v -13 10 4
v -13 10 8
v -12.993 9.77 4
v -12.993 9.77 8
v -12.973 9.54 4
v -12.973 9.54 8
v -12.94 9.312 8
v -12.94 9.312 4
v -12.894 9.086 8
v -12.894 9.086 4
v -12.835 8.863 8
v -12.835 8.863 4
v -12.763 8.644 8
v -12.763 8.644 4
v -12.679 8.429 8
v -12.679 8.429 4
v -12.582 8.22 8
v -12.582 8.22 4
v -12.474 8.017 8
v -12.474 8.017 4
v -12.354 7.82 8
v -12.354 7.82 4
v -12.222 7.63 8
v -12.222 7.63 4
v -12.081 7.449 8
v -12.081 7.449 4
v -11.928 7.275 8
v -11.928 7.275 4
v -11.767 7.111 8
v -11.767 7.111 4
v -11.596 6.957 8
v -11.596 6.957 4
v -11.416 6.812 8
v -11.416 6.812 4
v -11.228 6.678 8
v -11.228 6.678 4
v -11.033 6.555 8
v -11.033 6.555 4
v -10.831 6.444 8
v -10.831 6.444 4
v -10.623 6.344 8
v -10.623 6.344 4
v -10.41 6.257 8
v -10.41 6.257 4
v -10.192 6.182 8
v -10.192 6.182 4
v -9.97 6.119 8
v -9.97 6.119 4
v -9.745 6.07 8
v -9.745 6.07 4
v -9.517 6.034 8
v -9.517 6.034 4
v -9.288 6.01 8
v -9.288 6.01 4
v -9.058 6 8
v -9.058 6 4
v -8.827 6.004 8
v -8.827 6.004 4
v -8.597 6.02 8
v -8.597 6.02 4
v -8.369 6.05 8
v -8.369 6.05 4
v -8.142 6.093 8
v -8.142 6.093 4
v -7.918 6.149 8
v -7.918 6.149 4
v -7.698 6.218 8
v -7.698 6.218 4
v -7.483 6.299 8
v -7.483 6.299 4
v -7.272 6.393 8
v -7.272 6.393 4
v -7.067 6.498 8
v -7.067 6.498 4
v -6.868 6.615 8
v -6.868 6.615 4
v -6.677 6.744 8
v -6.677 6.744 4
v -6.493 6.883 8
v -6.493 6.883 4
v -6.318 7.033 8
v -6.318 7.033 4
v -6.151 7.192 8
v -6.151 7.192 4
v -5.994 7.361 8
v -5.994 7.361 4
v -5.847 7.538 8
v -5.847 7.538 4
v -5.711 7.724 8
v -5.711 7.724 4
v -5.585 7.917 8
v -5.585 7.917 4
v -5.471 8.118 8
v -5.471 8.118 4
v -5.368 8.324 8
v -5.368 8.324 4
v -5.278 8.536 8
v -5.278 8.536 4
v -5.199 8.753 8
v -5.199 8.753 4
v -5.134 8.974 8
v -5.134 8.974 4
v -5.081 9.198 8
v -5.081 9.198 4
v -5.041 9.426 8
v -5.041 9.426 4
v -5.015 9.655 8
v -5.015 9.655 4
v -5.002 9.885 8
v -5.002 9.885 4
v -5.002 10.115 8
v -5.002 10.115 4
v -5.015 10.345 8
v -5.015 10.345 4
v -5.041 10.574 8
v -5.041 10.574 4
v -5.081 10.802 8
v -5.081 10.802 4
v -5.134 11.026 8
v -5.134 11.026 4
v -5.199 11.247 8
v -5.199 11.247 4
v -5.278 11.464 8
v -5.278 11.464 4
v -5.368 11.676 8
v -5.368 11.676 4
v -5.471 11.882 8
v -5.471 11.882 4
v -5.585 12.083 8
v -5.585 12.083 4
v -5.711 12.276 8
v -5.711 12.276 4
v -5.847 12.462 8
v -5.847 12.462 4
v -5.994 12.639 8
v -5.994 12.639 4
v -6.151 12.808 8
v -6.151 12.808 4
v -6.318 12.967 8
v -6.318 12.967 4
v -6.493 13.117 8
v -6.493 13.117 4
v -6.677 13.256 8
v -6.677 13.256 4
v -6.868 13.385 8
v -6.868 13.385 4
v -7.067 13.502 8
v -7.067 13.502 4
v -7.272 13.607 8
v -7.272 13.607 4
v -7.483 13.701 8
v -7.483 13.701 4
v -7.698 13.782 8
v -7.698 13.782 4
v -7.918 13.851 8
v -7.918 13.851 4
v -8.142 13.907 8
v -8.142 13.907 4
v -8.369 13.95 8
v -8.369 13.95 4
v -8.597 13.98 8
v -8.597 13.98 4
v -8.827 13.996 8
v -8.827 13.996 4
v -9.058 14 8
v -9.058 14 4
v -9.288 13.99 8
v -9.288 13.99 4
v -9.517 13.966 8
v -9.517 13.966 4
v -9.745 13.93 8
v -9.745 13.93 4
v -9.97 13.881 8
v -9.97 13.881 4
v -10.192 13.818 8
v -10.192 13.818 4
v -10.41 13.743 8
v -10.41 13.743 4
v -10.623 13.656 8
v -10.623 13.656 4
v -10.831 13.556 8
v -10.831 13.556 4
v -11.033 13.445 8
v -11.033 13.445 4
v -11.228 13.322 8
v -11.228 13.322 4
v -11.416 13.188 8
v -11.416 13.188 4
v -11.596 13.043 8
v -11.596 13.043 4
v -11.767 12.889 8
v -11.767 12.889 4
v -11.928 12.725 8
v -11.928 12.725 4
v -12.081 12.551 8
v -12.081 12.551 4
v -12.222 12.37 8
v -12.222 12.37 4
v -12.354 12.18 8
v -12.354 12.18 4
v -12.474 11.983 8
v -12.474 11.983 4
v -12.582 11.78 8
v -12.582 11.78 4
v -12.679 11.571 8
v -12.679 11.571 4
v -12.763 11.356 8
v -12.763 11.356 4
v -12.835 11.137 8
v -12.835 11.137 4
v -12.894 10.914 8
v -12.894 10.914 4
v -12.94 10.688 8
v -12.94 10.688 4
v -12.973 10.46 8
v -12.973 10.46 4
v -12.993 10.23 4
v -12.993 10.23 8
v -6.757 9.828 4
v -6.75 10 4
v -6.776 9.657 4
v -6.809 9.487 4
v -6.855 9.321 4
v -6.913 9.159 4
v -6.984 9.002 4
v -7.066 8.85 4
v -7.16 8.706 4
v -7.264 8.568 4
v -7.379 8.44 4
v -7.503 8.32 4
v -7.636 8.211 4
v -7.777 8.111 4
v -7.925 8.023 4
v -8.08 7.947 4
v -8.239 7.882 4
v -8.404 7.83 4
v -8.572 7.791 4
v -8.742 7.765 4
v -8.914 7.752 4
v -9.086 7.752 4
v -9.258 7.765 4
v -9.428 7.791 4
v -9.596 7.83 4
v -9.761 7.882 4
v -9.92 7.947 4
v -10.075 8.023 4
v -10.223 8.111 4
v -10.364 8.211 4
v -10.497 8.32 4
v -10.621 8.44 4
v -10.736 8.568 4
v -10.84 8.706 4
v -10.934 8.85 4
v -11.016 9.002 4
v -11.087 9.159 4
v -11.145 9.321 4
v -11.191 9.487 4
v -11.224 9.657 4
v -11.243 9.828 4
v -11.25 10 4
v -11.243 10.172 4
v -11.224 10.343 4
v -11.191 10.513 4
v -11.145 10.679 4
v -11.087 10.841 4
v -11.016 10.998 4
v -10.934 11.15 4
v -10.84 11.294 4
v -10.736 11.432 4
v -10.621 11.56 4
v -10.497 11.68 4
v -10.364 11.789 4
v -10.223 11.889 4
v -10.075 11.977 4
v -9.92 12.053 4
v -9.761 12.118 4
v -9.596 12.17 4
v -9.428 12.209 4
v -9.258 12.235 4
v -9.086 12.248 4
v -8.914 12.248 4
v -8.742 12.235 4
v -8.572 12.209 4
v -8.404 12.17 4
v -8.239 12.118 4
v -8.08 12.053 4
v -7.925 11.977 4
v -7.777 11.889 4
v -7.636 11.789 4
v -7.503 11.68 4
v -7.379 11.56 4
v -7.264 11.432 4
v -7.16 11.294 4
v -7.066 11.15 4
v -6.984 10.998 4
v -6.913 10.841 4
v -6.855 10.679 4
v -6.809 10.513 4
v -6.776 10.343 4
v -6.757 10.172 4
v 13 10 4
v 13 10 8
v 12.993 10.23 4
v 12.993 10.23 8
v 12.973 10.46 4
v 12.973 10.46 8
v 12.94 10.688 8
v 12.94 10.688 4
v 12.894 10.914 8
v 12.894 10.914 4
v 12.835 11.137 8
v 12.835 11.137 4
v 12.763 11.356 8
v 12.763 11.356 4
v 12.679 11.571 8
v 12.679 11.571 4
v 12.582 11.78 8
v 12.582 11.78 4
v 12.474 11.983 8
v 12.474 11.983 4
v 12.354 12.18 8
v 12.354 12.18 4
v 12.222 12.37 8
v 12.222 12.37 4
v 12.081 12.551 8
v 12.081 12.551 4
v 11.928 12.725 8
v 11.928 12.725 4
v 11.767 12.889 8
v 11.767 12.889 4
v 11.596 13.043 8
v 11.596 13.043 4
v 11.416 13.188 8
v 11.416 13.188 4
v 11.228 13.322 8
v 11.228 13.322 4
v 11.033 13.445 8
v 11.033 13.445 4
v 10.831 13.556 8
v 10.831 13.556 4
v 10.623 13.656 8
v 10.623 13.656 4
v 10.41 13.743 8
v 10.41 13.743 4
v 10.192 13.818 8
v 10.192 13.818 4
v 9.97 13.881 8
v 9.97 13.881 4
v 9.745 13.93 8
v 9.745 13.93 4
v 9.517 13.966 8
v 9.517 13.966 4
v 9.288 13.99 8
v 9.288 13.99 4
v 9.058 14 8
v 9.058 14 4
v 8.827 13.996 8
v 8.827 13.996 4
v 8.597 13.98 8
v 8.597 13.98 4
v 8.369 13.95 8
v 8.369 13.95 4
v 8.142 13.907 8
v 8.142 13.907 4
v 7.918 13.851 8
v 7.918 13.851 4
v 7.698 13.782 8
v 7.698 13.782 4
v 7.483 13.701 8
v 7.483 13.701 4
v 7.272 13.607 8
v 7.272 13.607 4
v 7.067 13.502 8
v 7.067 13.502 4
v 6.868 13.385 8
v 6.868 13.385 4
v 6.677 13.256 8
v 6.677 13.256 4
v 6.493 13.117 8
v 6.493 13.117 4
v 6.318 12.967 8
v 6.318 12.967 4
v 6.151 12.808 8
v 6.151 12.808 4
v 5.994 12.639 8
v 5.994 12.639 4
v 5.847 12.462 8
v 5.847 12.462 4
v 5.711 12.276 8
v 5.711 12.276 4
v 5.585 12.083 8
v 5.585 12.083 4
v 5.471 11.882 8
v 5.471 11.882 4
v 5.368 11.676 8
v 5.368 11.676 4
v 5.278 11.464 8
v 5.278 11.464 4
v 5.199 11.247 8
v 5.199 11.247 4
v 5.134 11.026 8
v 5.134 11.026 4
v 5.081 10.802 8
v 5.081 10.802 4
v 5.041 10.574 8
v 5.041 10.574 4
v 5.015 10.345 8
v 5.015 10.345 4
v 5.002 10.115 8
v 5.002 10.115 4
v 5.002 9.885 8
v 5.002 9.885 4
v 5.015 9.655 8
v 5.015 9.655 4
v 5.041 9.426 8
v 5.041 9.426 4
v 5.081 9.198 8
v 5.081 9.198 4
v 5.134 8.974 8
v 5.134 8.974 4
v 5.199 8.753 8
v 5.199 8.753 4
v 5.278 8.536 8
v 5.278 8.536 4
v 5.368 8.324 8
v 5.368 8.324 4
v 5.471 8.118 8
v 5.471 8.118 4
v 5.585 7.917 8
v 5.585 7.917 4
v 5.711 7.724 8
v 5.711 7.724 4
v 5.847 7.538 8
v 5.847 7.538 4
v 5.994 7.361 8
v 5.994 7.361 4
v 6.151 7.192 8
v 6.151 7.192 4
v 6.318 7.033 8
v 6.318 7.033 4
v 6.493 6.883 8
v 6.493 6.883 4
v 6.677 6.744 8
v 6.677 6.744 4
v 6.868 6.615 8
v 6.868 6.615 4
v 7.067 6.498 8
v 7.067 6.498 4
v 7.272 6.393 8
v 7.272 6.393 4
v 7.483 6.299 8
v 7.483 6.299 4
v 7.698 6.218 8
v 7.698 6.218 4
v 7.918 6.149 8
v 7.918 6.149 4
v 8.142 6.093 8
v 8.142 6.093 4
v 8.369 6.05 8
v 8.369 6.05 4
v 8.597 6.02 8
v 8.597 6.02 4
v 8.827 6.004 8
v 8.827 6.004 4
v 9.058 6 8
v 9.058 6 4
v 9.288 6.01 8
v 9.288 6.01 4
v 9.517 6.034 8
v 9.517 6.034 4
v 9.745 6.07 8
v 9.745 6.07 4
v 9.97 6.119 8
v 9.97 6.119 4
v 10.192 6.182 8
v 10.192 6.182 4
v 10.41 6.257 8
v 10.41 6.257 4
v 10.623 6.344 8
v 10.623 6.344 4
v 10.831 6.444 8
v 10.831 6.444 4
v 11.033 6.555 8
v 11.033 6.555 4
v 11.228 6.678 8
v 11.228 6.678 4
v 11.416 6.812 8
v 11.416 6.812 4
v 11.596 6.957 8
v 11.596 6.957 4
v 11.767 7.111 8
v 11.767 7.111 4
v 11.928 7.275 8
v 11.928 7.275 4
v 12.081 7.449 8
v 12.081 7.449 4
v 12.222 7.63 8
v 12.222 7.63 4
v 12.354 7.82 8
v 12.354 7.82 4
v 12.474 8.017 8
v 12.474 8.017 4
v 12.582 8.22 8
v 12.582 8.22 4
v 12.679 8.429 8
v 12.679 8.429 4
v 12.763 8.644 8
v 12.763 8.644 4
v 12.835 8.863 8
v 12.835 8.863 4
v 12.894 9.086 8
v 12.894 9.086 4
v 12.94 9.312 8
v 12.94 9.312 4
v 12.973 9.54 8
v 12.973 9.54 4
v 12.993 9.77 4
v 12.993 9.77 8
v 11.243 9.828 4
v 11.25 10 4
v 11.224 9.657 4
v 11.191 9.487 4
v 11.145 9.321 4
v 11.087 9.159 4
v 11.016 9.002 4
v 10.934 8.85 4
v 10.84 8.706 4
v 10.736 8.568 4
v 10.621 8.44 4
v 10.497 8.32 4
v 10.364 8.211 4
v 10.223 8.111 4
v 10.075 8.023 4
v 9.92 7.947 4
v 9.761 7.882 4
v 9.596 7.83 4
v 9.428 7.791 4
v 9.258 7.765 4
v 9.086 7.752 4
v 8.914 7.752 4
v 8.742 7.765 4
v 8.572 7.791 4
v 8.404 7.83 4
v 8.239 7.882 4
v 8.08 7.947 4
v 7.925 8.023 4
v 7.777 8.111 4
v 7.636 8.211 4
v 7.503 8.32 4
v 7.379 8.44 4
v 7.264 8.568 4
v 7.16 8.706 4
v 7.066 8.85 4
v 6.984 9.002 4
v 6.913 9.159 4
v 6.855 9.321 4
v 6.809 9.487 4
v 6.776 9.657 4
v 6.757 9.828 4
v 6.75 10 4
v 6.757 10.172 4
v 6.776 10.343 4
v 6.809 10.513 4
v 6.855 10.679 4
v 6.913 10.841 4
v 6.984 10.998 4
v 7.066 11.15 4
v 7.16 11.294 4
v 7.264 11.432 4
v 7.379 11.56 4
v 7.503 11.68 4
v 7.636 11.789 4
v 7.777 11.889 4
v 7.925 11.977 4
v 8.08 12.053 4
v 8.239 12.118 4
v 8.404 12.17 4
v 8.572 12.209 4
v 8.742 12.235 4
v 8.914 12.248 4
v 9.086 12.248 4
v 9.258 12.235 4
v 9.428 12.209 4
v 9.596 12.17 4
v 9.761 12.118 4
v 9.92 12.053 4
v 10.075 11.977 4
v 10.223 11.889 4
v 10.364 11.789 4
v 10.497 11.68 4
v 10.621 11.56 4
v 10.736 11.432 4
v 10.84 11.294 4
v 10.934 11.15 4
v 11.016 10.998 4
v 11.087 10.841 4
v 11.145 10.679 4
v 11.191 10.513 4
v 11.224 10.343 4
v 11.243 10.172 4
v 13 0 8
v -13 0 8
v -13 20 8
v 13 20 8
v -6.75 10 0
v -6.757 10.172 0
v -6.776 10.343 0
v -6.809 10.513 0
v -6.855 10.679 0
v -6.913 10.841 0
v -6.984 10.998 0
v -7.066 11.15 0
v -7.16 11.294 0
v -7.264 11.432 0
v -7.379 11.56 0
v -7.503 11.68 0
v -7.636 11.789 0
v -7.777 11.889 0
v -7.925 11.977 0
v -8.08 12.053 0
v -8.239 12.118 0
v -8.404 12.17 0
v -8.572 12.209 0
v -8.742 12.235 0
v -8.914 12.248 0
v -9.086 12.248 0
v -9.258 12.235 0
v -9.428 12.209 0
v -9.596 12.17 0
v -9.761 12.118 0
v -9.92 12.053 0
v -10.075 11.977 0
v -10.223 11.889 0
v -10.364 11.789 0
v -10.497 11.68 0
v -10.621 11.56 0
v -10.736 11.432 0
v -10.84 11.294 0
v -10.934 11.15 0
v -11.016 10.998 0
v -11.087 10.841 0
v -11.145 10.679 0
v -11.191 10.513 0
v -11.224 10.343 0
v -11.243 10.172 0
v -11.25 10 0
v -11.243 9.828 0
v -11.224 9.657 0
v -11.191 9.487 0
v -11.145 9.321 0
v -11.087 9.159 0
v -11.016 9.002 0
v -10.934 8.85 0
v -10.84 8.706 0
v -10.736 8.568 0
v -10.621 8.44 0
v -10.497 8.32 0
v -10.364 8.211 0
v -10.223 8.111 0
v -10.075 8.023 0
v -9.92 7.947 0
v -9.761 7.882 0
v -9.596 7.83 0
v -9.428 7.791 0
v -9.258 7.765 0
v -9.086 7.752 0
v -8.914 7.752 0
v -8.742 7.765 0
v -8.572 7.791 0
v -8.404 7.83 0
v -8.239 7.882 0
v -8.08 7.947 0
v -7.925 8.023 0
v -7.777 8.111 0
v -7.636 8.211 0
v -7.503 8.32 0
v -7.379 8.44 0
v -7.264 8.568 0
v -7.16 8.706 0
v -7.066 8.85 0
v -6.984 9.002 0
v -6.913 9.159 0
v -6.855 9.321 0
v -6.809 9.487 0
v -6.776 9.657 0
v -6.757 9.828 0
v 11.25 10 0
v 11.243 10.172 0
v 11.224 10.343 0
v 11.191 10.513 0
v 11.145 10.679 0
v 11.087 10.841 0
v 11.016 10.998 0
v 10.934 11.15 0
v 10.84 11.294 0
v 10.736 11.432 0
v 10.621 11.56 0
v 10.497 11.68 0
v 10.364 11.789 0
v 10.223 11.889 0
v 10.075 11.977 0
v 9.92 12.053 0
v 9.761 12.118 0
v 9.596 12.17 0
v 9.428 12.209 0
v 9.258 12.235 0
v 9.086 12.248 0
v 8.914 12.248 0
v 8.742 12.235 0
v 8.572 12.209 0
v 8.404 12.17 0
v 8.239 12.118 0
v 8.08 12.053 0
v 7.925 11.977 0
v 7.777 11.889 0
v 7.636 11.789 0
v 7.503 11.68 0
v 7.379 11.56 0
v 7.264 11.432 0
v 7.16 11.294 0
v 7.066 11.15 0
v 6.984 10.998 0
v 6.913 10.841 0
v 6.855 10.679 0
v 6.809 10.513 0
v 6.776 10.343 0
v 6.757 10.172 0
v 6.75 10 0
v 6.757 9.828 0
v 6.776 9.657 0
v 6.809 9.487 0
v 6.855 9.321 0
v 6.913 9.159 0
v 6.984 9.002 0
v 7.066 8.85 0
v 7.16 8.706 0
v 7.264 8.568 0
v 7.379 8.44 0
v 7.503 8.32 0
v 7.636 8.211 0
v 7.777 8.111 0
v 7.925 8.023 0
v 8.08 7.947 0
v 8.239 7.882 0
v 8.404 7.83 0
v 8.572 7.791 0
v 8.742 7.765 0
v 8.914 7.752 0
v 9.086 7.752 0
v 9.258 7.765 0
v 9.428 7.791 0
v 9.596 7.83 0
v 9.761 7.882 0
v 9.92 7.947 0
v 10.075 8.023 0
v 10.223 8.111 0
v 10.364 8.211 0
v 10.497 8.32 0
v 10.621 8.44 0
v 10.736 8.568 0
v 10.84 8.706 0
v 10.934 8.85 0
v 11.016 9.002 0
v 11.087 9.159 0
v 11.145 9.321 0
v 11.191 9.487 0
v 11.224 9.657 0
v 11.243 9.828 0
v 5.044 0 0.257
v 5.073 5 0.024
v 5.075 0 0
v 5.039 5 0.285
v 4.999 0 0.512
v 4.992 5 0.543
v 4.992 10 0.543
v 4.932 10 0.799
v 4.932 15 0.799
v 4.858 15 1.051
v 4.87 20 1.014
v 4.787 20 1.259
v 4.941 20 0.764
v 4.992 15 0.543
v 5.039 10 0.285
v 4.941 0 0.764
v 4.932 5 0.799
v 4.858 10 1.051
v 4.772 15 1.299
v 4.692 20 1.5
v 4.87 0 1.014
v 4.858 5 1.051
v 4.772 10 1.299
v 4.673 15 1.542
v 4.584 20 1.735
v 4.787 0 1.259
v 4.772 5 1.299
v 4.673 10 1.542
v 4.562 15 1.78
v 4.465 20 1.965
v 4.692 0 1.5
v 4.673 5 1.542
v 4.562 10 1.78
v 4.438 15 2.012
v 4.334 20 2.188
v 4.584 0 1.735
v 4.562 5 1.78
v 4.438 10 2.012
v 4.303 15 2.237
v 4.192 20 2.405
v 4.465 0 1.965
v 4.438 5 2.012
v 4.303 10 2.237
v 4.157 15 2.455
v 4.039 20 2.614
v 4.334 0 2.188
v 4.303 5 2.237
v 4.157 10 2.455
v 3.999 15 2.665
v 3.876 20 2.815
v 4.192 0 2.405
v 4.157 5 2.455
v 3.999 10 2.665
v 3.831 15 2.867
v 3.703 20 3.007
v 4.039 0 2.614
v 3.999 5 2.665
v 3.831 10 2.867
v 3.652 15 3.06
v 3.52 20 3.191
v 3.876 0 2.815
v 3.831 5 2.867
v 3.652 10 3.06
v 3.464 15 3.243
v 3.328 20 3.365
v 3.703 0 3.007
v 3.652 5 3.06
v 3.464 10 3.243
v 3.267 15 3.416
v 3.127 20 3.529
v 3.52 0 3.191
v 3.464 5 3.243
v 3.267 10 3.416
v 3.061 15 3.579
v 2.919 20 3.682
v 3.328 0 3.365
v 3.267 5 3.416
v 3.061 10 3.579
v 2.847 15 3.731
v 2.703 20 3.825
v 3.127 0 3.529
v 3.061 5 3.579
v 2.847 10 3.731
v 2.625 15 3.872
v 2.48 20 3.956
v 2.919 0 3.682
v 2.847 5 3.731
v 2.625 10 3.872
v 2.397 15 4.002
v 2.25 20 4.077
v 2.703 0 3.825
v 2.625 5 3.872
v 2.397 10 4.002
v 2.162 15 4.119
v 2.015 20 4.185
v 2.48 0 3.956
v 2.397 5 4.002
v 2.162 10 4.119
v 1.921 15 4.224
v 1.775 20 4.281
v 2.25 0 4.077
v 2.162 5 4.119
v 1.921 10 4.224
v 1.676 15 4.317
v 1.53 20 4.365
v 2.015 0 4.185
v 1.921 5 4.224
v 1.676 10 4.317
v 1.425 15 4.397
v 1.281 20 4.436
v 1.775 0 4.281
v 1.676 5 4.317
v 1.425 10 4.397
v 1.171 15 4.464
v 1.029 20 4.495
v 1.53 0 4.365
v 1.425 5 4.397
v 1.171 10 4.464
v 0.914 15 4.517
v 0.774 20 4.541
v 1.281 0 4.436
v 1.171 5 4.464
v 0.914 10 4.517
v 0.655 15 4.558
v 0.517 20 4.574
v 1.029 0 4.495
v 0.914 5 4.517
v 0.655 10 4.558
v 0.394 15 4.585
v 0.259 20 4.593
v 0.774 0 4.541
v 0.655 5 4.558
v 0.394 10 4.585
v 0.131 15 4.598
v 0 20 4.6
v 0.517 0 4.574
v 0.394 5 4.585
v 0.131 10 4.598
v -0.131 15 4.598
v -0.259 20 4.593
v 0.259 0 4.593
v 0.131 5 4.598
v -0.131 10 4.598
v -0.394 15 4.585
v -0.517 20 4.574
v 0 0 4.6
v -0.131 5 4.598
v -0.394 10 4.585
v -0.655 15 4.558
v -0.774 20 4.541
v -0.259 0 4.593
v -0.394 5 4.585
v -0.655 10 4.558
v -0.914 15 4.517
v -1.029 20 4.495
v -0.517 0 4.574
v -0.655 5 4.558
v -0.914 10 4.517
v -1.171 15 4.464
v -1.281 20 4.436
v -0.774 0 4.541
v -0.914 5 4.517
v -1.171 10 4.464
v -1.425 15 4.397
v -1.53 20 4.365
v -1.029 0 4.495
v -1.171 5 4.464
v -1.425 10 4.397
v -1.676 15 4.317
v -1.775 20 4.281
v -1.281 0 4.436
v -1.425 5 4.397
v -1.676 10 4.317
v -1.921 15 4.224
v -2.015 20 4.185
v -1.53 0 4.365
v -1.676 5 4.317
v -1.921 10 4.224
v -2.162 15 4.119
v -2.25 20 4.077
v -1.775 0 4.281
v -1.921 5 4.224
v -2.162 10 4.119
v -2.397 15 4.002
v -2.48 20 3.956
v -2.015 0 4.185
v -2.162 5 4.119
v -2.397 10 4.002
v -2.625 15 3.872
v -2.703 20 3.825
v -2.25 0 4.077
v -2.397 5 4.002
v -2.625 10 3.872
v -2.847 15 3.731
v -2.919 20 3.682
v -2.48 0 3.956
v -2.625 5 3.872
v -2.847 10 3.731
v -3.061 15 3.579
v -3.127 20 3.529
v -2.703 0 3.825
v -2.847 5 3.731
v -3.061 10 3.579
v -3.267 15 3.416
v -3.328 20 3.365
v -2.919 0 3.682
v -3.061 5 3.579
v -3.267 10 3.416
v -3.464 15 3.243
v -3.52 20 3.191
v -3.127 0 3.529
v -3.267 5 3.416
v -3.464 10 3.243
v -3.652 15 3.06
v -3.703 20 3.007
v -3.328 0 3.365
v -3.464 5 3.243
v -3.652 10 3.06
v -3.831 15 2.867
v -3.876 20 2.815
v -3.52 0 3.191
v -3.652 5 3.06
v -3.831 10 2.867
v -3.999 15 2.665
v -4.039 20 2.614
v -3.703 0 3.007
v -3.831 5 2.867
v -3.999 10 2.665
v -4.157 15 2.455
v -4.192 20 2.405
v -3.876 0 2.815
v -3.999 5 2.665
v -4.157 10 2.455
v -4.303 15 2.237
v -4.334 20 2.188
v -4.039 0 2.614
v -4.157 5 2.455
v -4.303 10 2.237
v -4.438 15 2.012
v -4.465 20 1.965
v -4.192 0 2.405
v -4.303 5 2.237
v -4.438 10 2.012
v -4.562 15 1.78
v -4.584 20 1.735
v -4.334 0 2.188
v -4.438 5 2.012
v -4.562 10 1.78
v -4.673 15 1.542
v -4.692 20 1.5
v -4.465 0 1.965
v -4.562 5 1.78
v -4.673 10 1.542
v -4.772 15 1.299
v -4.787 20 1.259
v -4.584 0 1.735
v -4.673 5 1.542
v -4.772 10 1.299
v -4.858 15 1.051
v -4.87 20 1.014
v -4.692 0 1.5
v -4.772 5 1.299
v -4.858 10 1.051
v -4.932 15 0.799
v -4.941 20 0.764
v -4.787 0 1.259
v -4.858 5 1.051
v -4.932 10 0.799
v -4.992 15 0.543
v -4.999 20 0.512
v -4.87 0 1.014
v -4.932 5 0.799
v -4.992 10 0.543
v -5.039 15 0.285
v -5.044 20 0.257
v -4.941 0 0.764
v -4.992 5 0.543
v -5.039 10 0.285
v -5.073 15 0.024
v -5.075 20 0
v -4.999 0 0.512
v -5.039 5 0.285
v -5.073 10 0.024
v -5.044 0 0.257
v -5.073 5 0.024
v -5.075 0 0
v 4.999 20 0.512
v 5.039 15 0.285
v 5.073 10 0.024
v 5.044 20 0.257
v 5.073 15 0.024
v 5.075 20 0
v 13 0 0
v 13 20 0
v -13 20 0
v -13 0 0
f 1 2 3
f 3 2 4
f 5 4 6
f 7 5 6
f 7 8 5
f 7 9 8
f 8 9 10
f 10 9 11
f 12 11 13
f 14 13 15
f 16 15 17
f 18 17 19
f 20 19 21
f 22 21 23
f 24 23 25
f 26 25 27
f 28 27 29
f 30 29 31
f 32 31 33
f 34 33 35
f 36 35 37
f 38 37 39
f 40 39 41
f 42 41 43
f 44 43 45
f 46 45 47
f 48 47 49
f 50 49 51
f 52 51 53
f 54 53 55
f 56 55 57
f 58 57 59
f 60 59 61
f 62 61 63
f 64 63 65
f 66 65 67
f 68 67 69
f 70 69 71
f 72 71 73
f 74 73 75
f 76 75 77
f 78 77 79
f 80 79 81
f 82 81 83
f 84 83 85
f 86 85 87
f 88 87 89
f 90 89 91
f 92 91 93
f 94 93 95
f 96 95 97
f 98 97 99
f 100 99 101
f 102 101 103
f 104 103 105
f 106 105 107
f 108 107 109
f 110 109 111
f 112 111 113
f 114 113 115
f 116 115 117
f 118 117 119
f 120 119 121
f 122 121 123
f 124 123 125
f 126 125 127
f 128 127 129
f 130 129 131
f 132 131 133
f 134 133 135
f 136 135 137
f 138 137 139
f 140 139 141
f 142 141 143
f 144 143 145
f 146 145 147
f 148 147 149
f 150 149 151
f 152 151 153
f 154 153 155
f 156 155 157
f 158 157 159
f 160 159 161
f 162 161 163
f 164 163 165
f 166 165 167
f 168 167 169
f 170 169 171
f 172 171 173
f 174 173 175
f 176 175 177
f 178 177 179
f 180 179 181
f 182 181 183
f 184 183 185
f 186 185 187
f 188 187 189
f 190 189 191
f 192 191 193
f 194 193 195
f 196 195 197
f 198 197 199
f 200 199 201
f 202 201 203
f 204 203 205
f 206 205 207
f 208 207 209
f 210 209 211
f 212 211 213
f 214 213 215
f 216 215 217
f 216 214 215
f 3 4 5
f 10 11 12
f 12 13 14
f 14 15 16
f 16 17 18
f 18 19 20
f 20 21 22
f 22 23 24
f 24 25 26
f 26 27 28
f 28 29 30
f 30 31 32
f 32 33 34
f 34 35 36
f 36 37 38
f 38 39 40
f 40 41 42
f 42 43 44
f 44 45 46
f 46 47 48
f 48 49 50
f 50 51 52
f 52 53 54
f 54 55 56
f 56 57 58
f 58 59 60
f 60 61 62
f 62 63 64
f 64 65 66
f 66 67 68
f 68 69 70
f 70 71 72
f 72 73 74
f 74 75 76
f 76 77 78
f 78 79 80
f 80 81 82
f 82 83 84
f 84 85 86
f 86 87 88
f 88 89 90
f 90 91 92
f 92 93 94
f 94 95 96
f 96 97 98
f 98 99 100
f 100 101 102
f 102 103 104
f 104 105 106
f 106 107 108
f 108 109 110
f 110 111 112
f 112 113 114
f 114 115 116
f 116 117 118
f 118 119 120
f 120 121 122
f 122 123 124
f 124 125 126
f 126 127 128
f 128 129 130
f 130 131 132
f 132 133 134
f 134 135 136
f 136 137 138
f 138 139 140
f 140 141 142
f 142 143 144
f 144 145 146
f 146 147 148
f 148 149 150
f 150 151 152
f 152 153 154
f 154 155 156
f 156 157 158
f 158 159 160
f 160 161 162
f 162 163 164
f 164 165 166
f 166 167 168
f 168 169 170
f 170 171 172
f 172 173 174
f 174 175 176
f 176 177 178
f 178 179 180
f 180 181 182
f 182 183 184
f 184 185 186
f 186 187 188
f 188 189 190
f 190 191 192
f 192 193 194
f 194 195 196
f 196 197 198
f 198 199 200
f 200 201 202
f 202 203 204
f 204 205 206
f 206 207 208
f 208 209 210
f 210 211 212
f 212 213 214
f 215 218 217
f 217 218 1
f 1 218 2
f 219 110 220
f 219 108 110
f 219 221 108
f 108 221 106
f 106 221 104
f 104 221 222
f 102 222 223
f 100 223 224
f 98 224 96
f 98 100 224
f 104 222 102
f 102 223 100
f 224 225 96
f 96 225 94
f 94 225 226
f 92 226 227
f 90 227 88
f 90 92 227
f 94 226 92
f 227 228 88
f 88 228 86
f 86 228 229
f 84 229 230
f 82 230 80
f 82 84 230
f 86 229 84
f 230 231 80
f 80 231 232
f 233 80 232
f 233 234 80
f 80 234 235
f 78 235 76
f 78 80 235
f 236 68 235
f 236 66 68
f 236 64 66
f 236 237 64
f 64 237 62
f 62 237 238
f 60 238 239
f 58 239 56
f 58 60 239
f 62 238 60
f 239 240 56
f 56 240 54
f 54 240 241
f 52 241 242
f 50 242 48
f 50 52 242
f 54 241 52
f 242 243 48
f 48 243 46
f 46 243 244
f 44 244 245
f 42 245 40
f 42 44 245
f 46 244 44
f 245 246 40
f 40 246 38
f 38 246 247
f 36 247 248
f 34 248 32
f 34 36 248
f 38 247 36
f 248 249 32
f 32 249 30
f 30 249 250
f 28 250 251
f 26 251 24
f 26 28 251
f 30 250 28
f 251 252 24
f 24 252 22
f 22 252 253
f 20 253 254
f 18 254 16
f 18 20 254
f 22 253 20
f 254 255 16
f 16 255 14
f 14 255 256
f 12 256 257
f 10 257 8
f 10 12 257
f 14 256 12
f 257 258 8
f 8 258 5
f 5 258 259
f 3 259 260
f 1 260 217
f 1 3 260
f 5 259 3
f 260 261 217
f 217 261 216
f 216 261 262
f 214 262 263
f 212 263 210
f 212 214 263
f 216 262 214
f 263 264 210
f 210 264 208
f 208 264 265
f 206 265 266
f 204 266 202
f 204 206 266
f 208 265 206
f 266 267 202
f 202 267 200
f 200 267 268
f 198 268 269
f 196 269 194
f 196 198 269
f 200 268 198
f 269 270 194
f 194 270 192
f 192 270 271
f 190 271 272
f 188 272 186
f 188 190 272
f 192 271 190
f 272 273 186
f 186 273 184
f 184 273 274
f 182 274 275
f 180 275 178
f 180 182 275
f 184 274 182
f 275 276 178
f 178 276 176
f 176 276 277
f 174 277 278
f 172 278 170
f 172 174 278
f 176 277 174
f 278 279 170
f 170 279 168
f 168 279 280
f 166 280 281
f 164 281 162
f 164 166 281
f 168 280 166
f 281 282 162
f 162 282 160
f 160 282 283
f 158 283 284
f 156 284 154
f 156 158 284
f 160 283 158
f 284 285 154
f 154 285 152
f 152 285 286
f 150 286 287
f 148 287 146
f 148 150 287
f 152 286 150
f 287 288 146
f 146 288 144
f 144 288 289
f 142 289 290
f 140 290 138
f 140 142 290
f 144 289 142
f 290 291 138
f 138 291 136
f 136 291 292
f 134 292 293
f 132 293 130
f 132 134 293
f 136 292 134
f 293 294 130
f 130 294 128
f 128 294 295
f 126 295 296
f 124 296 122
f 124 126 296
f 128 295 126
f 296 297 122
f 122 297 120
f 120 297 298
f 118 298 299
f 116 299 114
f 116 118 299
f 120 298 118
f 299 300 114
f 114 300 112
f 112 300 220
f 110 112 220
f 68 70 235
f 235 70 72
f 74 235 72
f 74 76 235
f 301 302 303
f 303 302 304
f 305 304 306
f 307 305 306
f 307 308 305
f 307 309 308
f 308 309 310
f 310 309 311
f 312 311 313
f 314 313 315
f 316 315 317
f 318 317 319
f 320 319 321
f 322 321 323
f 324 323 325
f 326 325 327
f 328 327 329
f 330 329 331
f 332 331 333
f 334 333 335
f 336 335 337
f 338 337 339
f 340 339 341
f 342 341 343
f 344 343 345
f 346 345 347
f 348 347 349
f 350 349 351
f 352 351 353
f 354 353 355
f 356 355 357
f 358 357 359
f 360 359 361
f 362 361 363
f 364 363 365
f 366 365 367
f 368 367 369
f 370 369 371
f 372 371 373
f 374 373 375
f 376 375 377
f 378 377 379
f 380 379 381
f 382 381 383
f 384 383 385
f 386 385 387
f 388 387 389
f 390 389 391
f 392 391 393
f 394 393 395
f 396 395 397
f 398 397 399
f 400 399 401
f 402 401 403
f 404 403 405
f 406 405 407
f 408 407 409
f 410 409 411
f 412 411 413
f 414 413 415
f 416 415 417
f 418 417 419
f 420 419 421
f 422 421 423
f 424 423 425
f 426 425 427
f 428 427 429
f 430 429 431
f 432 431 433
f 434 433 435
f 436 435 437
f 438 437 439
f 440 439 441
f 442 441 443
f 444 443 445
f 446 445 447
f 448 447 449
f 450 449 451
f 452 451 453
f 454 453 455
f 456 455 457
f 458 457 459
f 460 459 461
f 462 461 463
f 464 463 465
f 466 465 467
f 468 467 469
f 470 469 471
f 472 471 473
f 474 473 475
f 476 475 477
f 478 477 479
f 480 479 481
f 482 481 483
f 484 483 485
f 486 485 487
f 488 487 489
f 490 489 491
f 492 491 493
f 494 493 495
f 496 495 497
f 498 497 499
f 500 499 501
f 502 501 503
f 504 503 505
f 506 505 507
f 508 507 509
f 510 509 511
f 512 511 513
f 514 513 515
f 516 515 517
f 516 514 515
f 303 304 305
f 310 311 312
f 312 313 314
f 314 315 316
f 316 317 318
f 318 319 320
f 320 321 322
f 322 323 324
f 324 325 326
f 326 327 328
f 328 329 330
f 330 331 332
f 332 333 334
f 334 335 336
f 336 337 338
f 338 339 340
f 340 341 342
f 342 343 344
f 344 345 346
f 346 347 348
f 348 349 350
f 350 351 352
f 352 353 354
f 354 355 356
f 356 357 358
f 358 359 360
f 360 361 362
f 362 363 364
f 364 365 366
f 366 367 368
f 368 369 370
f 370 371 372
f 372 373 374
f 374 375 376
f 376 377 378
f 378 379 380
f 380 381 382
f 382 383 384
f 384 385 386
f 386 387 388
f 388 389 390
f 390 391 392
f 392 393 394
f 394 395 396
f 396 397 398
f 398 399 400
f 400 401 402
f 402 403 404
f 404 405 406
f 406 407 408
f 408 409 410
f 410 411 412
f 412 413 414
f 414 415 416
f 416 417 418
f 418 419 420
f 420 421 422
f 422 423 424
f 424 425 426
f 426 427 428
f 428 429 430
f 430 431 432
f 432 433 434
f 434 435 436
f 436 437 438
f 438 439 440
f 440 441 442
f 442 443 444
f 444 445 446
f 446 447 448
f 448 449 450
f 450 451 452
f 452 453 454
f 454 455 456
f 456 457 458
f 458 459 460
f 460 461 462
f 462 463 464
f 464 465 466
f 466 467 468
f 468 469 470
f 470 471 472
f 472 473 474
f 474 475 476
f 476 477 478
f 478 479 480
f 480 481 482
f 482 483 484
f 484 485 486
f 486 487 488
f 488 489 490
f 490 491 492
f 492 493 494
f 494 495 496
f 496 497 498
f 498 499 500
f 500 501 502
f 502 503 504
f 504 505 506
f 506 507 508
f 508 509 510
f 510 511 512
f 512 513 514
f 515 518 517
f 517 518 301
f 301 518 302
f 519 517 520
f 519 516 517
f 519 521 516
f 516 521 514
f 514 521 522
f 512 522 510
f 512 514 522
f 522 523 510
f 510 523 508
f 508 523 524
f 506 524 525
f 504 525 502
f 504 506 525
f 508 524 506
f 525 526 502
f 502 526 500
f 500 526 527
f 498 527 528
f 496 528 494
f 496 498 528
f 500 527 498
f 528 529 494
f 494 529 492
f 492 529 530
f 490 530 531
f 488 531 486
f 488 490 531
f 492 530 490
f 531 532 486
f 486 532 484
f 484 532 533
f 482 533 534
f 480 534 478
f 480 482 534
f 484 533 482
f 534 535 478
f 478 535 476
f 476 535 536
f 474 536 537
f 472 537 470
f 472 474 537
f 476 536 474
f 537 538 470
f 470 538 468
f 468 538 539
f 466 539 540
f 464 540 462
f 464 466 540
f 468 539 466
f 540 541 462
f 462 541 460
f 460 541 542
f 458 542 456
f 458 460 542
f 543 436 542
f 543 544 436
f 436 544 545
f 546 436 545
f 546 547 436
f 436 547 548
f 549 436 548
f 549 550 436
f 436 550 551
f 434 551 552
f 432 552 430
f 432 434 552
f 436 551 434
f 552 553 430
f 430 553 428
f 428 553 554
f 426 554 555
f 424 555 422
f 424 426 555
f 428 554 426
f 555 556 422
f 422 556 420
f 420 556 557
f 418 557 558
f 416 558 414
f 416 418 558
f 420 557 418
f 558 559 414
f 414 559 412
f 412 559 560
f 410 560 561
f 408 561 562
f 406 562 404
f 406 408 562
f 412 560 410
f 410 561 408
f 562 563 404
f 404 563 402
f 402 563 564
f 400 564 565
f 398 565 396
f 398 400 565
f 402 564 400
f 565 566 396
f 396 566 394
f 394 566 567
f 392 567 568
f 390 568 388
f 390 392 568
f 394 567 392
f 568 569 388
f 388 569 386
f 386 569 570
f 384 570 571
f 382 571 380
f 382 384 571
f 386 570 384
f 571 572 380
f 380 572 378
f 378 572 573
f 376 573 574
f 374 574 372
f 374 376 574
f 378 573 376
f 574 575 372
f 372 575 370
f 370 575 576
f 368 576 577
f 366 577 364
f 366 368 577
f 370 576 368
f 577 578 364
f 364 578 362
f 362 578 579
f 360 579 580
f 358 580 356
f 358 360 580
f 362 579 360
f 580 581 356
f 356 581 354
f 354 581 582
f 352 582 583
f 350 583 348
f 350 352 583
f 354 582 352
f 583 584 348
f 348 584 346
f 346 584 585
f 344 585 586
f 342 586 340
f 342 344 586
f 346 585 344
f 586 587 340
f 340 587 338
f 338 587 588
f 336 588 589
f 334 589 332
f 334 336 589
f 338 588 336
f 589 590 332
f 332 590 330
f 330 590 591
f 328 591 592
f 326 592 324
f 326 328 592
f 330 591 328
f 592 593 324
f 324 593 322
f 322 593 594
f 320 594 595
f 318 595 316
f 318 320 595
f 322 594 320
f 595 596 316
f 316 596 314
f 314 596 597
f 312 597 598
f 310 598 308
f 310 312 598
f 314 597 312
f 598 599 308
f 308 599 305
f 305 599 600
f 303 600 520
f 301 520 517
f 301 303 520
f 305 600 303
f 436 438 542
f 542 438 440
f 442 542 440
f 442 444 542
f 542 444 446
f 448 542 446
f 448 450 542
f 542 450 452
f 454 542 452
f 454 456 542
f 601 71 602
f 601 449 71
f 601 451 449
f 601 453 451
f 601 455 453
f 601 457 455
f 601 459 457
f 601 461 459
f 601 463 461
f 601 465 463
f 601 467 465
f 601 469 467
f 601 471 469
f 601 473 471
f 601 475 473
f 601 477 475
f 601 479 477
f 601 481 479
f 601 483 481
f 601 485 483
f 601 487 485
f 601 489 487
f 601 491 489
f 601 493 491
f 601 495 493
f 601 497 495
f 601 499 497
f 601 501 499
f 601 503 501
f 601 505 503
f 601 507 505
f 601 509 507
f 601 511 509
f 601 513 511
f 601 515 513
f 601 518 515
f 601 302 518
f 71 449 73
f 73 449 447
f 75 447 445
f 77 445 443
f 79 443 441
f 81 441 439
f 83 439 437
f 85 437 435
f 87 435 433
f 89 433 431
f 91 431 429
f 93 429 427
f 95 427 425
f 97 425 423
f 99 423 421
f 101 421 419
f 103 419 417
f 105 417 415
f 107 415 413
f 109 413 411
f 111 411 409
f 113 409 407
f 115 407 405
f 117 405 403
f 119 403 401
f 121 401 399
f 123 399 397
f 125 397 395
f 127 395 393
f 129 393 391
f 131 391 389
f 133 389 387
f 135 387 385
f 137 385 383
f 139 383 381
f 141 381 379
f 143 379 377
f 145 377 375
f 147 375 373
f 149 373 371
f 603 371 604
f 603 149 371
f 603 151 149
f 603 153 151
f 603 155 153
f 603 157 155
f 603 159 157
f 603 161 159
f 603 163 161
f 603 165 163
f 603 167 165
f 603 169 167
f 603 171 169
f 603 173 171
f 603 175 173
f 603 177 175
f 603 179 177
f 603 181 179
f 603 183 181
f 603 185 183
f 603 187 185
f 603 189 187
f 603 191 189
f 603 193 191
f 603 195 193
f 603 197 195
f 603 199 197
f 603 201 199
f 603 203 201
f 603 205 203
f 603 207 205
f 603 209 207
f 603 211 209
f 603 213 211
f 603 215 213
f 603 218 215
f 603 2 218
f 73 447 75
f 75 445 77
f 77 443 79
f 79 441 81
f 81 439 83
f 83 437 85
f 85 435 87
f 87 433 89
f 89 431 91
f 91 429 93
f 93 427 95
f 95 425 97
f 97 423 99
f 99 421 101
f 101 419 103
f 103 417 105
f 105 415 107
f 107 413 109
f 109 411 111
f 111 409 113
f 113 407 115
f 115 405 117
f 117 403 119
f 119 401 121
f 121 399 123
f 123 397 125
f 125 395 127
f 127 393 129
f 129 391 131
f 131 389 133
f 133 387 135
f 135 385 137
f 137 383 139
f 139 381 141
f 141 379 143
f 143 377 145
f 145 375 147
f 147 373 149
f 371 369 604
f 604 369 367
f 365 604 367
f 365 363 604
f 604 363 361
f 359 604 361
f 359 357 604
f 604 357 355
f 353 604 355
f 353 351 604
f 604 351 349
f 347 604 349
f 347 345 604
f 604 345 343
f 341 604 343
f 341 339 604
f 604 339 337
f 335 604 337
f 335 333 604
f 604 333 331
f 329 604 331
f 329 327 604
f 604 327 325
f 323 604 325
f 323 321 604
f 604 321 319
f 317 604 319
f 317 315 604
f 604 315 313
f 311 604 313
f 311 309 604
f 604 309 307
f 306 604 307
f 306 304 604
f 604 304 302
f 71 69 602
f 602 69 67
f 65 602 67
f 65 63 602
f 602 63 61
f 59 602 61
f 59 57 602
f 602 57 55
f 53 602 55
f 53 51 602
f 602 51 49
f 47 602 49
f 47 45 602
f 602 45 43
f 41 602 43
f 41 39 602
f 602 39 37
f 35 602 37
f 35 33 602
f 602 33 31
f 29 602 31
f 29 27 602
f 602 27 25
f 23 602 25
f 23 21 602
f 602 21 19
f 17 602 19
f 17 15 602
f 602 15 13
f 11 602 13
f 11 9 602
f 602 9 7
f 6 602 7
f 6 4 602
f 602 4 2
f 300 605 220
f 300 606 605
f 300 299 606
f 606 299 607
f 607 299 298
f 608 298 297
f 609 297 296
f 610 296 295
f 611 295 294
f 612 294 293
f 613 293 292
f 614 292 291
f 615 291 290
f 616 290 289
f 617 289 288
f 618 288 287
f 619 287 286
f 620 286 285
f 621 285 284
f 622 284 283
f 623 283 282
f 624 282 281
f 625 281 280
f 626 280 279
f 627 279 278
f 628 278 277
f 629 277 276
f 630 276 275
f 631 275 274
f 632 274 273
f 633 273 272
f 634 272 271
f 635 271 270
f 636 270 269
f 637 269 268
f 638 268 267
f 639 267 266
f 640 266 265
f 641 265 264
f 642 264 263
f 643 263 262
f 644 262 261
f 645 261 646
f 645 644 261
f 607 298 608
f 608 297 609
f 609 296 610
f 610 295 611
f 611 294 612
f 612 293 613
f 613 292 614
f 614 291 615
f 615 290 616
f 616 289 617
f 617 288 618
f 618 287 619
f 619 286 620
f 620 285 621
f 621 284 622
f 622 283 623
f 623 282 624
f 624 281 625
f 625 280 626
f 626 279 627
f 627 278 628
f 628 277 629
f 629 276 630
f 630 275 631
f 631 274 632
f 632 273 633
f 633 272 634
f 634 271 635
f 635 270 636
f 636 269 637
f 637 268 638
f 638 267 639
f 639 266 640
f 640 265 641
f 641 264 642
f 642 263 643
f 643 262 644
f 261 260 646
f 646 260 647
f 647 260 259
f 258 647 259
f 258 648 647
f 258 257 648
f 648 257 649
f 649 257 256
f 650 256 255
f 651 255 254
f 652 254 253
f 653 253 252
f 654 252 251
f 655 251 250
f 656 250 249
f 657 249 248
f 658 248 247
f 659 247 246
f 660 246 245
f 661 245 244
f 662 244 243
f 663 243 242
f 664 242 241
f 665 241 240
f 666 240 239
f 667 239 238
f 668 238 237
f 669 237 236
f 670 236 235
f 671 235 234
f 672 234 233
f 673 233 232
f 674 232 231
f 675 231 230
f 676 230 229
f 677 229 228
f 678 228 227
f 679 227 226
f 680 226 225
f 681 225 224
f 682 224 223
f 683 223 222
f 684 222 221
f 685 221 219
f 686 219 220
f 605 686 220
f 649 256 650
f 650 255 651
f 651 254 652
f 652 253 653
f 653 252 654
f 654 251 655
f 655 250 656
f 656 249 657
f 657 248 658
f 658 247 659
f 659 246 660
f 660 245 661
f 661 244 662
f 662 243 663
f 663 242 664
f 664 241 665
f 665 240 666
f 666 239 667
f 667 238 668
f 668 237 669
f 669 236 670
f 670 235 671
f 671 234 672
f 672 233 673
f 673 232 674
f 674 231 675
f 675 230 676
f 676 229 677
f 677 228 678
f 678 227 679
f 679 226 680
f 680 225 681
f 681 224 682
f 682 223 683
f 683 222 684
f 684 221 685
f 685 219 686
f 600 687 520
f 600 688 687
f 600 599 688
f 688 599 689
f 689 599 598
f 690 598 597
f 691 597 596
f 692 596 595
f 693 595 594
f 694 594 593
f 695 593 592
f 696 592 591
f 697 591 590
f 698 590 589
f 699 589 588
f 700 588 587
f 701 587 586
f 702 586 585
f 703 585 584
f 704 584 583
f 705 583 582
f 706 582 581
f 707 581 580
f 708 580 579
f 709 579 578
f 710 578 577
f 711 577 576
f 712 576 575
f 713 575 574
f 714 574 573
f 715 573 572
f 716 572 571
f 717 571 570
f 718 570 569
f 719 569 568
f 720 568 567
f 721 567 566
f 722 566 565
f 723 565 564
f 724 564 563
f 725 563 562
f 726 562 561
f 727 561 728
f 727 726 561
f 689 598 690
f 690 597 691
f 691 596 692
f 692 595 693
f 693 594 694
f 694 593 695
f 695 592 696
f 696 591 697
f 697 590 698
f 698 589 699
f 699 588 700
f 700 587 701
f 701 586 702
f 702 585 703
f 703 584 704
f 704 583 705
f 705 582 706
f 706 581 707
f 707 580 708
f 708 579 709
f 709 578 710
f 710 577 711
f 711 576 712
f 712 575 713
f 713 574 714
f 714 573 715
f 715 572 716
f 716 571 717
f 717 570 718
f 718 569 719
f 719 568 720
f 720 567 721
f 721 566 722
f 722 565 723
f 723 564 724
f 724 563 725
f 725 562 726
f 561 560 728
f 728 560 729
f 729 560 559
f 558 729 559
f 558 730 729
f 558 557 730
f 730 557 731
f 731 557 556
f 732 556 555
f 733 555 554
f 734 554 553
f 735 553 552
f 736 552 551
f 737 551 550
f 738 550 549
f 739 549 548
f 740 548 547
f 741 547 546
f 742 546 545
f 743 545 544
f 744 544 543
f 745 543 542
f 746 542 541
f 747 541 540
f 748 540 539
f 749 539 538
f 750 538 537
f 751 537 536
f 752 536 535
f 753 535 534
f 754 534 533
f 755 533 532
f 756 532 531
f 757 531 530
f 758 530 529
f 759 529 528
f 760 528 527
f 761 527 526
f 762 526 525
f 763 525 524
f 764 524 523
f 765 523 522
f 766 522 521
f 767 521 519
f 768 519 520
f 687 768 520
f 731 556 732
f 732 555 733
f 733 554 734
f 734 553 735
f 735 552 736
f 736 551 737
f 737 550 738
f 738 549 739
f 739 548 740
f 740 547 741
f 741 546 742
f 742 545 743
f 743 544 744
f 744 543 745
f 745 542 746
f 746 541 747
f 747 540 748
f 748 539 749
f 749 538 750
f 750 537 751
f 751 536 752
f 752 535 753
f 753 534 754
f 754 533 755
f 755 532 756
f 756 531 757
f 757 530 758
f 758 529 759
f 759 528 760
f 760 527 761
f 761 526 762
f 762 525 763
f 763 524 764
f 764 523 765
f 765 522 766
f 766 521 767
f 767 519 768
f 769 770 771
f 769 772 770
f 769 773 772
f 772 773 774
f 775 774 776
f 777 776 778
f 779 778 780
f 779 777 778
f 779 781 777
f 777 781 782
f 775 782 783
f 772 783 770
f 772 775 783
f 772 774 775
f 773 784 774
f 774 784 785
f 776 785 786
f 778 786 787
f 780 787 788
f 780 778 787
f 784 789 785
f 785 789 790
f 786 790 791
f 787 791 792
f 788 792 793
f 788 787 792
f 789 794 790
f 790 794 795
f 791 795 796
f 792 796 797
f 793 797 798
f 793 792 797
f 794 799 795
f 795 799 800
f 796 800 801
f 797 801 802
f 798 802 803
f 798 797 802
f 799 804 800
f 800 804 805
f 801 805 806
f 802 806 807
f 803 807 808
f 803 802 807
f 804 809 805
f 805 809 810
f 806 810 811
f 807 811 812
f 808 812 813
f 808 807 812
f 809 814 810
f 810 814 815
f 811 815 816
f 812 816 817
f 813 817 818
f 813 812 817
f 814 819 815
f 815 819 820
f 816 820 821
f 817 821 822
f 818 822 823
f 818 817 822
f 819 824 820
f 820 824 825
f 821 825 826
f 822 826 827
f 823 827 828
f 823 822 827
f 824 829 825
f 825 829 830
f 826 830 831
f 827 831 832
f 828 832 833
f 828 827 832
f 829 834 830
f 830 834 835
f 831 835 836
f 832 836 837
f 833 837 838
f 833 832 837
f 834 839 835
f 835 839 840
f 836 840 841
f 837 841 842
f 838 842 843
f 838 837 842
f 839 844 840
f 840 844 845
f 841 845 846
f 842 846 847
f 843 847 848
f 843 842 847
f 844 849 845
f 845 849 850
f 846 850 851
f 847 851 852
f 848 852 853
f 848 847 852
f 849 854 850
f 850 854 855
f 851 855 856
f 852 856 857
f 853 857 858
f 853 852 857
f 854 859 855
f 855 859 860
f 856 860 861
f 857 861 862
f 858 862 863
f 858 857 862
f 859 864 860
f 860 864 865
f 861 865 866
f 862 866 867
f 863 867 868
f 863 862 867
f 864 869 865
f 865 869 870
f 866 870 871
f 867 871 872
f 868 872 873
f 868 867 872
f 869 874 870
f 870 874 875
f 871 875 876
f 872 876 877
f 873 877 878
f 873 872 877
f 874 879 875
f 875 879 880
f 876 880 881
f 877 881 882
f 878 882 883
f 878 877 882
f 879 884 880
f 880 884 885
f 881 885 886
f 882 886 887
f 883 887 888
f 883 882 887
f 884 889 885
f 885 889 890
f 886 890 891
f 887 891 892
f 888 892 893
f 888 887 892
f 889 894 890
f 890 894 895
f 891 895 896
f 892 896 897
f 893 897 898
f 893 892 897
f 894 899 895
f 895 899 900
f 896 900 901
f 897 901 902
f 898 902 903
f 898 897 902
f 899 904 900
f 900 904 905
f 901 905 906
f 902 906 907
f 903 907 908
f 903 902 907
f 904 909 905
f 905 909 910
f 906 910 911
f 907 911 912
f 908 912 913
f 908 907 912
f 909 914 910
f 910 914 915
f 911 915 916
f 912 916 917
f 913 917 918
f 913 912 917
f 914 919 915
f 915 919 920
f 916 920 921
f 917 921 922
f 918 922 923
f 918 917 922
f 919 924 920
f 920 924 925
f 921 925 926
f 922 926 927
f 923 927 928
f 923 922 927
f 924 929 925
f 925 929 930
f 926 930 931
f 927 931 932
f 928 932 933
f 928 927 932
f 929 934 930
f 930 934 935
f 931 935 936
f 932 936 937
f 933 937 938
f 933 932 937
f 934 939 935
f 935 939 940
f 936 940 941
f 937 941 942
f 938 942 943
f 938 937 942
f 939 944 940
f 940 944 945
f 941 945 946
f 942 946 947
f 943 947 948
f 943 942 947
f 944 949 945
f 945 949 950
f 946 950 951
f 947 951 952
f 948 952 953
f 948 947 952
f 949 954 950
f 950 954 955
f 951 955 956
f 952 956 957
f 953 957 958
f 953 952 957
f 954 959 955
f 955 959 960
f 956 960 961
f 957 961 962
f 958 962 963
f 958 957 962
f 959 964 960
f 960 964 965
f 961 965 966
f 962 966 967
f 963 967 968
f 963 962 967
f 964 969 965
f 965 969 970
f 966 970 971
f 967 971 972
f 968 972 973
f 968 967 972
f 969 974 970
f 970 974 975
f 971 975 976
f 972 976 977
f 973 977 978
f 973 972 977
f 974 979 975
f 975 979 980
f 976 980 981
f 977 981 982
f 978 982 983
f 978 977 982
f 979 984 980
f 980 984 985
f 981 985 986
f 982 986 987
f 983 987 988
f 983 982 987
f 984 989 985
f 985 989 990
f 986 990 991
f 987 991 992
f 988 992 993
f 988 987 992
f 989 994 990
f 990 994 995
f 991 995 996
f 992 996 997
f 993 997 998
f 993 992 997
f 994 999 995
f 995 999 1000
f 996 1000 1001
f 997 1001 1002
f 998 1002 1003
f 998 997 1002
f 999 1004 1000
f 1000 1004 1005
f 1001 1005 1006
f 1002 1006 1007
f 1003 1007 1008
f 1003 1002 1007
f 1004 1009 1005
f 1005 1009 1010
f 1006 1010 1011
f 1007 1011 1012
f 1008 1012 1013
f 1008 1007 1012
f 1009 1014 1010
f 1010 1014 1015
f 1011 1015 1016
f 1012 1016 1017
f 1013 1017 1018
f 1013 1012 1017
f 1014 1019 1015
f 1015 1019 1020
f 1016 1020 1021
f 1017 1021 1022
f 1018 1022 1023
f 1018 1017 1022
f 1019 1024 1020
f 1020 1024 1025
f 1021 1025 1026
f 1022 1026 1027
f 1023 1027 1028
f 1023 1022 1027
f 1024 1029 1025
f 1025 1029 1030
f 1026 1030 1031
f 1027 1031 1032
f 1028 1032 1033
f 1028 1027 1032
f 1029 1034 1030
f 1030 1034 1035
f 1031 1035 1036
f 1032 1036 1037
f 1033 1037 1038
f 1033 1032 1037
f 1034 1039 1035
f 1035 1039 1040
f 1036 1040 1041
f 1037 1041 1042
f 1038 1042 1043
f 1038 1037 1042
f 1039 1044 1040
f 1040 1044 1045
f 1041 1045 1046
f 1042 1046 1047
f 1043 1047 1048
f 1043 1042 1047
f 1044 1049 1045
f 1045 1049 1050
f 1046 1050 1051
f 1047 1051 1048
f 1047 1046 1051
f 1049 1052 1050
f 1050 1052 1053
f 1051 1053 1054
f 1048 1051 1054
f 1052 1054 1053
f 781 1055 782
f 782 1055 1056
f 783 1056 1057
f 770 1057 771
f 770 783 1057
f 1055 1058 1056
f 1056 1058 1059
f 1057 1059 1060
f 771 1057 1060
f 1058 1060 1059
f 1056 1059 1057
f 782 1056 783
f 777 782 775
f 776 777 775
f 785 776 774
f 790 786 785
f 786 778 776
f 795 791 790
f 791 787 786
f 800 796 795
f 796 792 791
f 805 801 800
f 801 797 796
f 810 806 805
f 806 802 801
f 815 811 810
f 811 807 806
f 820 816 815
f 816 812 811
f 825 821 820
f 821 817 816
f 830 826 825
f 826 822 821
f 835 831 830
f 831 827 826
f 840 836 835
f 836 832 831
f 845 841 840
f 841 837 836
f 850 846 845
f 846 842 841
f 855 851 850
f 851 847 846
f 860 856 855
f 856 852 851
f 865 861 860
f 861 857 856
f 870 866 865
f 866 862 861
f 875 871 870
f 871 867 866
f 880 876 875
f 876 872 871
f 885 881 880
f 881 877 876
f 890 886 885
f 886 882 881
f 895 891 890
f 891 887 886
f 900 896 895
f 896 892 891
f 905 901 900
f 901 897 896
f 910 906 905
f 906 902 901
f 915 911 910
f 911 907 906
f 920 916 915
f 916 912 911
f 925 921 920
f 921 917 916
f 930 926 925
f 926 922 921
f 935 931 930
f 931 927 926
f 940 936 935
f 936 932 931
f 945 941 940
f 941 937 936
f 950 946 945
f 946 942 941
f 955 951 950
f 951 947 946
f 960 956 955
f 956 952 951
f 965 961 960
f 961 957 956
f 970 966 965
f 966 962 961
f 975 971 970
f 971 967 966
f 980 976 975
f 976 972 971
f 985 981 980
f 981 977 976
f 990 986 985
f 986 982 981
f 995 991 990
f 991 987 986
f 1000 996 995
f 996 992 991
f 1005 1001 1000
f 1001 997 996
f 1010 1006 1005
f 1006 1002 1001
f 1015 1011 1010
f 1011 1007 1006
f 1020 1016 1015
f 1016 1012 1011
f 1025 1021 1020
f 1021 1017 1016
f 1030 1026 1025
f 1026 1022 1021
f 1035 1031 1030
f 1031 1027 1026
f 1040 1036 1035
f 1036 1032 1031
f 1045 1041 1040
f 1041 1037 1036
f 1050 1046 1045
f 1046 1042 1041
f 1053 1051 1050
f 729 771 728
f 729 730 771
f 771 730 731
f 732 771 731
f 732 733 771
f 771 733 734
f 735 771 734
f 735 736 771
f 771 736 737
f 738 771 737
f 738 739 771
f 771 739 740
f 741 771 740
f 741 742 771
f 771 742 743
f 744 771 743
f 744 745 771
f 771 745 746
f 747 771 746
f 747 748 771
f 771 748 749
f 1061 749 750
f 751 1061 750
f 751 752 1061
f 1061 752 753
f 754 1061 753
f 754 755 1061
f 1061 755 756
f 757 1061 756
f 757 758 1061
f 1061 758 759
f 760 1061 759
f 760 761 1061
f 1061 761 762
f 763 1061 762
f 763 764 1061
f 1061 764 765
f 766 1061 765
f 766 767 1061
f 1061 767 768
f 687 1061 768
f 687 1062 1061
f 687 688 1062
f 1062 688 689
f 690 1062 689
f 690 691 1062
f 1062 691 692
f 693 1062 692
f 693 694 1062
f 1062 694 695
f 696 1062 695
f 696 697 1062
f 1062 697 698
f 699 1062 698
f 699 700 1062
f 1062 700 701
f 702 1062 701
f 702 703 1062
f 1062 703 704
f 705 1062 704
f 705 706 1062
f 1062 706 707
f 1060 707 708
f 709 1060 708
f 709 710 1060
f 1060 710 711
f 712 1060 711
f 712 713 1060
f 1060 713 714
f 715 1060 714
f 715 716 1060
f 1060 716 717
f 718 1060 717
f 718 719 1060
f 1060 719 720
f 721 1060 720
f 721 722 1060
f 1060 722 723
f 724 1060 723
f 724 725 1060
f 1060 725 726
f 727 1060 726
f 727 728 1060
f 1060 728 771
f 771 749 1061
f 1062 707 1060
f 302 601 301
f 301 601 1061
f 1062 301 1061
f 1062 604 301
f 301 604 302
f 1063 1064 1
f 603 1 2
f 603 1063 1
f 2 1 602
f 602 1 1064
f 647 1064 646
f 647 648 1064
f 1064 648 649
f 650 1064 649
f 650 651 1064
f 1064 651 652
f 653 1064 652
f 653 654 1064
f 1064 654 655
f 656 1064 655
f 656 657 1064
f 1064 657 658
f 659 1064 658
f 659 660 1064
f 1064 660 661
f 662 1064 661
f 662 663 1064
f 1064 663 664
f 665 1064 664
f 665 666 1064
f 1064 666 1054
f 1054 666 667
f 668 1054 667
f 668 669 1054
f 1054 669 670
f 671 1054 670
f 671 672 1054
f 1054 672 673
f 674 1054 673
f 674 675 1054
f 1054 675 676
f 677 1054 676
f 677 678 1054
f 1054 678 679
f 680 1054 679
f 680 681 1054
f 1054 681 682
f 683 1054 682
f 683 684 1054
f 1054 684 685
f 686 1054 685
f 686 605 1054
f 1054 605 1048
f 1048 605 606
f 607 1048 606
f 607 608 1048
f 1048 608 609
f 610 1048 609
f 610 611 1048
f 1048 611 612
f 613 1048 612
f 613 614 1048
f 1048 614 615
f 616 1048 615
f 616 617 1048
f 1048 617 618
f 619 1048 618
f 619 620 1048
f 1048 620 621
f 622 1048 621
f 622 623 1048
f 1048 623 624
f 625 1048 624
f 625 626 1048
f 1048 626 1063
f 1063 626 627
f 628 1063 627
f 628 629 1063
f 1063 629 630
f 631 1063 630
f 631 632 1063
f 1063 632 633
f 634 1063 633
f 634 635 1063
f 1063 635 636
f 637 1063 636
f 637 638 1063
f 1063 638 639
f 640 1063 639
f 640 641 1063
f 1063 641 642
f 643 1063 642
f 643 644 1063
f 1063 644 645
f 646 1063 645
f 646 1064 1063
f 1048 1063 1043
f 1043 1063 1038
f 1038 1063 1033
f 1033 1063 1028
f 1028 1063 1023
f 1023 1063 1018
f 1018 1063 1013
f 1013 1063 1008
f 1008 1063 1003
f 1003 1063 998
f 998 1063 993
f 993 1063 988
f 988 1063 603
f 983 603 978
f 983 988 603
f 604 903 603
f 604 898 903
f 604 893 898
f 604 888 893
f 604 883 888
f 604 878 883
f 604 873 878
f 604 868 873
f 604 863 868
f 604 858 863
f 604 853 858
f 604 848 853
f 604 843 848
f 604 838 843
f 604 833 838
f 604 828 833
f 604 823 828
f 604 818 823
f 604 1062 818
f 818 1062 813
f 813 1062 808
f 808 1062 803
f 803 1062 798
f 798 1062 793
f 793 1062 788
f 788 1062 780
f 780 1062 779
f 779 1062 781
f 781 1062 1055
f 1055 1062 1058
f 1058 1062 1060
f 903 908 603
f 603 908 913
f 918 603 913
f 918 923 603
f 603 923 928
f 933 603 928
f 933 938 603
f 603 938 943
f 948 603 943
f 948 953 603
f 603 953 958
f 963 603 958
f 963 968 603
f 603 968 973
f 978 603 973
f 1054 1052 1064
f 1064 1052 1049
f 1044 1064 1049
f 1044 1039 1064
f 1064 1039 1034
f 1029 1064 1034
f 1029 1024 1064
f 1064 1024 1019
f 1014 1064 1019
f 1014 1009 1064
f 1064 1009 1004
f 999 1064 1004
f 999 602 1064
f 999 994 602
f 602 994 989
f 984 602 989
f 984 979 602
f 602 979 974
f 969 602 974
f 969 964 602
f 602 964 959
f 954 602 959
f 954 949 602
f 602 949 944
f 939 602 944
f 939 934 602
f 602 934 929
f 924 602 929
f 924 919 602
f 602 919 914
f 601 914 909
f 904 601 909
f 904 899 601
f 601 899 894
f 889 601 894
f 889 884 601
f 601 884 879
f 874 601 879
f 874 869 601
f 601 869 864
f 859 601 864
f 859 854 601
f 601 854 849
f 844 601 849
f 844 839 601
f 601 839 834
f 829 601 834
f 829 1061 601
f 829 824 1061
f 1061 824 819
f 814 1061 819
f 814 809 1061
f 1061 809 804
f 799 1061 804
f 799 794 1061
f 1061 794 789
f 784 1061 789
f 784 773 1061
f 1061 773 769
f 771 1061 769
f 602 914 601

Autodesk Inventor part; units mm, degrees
ref_plane "YZ Plane" through (0, 0, 0) normal (1, 0, 0) x (0, 1, 0)
ref_plane "XZ Plane" through (0, 0, 0) normal (0, 1, 0) x (-1, 0, 0)
ref_plane "XY Plane" through (0, 0, 0) normal (0, 0, 1) x (1, 0, 0)
sketch "Sketch1" plane through (0, 0, 0) normal (0, 1, 0) x (-1, 0, 0)
  circle A0 centre (0, -0.5) radius 5.1
  line L0 (5.0754, 0) -> (13, 0)
  line L1 (13, 0) -> (13, 8)
  line L2 (13, 8) -> (-13, 8)
  line L3 (-13, 8) -> (-13, 0)
  line L4 (-13, 0) -> (-5.0754, 0)
  point P0 (0, 0)
  dimension "d0" = 10.2
  dimension "d1" = 0.5
  dimension "d2" = 26
  dimension "d3" = 13
  dimension "d4" = 8
extrude "Extrusion1" add sketch "Sketch1" along normal blind 20 contours A0 L4 L3 L2 L1 L0
sketch "Sketch2" plane through (-5.0754, 0, 0) normal (0, 0, -1) x (-1, 0, 0)
  line L0 (0, 0) -> (7.9246, 0) projected
  line L1 (7.9246, 0) -> (7.9246, 20) projected
  line L2 (-18.0754, 0) -> (-10.1509, 0) projected
  line L3 (-10.1509, 0) -> (-10.1509, 20) projected
  line L4 (-18.0754, 20) -> (-10.1509, 20) projected
  line L5 (-18.0754, 0) -> (-18.0754, 20) projected
  circle A0 centre (-14.0754, 10) radius 2.25
  circle A1 centre (3.9246, 10) radius 2.25
  point P0 (-5.0754, 0)
  dimension "d8" = 4.5
  dimension "d9" = 18
  dimension "d10" = 4
  dimension "d11" = 10
extrude "Extrusion2" cut sketch "Sketch2" against normal up to surface (8 mm away) contours A0 | A1
sketch "Sketch3" plane through (-13, 0, 8) normal (0, 0, 1) x (1, 0, 0)
  circle A0 centre (4, 10) radius 2.25 projected
  circle A1 centre (22, 10) radius 2.25 projected
  circle A2 centre (4, 10) radius 2.25 projected
  circle A3 centre (4, 10) radius 4
  circle A4 centre (22, 10) radius 4
  point P0 (13, 0)
  dimension "d14" = 8
extrude "Extrusion3" cut sketch "Sketch3" against normal blind 4
properties part number "ZAxisRodClampTop" material "ABS Plastic"
